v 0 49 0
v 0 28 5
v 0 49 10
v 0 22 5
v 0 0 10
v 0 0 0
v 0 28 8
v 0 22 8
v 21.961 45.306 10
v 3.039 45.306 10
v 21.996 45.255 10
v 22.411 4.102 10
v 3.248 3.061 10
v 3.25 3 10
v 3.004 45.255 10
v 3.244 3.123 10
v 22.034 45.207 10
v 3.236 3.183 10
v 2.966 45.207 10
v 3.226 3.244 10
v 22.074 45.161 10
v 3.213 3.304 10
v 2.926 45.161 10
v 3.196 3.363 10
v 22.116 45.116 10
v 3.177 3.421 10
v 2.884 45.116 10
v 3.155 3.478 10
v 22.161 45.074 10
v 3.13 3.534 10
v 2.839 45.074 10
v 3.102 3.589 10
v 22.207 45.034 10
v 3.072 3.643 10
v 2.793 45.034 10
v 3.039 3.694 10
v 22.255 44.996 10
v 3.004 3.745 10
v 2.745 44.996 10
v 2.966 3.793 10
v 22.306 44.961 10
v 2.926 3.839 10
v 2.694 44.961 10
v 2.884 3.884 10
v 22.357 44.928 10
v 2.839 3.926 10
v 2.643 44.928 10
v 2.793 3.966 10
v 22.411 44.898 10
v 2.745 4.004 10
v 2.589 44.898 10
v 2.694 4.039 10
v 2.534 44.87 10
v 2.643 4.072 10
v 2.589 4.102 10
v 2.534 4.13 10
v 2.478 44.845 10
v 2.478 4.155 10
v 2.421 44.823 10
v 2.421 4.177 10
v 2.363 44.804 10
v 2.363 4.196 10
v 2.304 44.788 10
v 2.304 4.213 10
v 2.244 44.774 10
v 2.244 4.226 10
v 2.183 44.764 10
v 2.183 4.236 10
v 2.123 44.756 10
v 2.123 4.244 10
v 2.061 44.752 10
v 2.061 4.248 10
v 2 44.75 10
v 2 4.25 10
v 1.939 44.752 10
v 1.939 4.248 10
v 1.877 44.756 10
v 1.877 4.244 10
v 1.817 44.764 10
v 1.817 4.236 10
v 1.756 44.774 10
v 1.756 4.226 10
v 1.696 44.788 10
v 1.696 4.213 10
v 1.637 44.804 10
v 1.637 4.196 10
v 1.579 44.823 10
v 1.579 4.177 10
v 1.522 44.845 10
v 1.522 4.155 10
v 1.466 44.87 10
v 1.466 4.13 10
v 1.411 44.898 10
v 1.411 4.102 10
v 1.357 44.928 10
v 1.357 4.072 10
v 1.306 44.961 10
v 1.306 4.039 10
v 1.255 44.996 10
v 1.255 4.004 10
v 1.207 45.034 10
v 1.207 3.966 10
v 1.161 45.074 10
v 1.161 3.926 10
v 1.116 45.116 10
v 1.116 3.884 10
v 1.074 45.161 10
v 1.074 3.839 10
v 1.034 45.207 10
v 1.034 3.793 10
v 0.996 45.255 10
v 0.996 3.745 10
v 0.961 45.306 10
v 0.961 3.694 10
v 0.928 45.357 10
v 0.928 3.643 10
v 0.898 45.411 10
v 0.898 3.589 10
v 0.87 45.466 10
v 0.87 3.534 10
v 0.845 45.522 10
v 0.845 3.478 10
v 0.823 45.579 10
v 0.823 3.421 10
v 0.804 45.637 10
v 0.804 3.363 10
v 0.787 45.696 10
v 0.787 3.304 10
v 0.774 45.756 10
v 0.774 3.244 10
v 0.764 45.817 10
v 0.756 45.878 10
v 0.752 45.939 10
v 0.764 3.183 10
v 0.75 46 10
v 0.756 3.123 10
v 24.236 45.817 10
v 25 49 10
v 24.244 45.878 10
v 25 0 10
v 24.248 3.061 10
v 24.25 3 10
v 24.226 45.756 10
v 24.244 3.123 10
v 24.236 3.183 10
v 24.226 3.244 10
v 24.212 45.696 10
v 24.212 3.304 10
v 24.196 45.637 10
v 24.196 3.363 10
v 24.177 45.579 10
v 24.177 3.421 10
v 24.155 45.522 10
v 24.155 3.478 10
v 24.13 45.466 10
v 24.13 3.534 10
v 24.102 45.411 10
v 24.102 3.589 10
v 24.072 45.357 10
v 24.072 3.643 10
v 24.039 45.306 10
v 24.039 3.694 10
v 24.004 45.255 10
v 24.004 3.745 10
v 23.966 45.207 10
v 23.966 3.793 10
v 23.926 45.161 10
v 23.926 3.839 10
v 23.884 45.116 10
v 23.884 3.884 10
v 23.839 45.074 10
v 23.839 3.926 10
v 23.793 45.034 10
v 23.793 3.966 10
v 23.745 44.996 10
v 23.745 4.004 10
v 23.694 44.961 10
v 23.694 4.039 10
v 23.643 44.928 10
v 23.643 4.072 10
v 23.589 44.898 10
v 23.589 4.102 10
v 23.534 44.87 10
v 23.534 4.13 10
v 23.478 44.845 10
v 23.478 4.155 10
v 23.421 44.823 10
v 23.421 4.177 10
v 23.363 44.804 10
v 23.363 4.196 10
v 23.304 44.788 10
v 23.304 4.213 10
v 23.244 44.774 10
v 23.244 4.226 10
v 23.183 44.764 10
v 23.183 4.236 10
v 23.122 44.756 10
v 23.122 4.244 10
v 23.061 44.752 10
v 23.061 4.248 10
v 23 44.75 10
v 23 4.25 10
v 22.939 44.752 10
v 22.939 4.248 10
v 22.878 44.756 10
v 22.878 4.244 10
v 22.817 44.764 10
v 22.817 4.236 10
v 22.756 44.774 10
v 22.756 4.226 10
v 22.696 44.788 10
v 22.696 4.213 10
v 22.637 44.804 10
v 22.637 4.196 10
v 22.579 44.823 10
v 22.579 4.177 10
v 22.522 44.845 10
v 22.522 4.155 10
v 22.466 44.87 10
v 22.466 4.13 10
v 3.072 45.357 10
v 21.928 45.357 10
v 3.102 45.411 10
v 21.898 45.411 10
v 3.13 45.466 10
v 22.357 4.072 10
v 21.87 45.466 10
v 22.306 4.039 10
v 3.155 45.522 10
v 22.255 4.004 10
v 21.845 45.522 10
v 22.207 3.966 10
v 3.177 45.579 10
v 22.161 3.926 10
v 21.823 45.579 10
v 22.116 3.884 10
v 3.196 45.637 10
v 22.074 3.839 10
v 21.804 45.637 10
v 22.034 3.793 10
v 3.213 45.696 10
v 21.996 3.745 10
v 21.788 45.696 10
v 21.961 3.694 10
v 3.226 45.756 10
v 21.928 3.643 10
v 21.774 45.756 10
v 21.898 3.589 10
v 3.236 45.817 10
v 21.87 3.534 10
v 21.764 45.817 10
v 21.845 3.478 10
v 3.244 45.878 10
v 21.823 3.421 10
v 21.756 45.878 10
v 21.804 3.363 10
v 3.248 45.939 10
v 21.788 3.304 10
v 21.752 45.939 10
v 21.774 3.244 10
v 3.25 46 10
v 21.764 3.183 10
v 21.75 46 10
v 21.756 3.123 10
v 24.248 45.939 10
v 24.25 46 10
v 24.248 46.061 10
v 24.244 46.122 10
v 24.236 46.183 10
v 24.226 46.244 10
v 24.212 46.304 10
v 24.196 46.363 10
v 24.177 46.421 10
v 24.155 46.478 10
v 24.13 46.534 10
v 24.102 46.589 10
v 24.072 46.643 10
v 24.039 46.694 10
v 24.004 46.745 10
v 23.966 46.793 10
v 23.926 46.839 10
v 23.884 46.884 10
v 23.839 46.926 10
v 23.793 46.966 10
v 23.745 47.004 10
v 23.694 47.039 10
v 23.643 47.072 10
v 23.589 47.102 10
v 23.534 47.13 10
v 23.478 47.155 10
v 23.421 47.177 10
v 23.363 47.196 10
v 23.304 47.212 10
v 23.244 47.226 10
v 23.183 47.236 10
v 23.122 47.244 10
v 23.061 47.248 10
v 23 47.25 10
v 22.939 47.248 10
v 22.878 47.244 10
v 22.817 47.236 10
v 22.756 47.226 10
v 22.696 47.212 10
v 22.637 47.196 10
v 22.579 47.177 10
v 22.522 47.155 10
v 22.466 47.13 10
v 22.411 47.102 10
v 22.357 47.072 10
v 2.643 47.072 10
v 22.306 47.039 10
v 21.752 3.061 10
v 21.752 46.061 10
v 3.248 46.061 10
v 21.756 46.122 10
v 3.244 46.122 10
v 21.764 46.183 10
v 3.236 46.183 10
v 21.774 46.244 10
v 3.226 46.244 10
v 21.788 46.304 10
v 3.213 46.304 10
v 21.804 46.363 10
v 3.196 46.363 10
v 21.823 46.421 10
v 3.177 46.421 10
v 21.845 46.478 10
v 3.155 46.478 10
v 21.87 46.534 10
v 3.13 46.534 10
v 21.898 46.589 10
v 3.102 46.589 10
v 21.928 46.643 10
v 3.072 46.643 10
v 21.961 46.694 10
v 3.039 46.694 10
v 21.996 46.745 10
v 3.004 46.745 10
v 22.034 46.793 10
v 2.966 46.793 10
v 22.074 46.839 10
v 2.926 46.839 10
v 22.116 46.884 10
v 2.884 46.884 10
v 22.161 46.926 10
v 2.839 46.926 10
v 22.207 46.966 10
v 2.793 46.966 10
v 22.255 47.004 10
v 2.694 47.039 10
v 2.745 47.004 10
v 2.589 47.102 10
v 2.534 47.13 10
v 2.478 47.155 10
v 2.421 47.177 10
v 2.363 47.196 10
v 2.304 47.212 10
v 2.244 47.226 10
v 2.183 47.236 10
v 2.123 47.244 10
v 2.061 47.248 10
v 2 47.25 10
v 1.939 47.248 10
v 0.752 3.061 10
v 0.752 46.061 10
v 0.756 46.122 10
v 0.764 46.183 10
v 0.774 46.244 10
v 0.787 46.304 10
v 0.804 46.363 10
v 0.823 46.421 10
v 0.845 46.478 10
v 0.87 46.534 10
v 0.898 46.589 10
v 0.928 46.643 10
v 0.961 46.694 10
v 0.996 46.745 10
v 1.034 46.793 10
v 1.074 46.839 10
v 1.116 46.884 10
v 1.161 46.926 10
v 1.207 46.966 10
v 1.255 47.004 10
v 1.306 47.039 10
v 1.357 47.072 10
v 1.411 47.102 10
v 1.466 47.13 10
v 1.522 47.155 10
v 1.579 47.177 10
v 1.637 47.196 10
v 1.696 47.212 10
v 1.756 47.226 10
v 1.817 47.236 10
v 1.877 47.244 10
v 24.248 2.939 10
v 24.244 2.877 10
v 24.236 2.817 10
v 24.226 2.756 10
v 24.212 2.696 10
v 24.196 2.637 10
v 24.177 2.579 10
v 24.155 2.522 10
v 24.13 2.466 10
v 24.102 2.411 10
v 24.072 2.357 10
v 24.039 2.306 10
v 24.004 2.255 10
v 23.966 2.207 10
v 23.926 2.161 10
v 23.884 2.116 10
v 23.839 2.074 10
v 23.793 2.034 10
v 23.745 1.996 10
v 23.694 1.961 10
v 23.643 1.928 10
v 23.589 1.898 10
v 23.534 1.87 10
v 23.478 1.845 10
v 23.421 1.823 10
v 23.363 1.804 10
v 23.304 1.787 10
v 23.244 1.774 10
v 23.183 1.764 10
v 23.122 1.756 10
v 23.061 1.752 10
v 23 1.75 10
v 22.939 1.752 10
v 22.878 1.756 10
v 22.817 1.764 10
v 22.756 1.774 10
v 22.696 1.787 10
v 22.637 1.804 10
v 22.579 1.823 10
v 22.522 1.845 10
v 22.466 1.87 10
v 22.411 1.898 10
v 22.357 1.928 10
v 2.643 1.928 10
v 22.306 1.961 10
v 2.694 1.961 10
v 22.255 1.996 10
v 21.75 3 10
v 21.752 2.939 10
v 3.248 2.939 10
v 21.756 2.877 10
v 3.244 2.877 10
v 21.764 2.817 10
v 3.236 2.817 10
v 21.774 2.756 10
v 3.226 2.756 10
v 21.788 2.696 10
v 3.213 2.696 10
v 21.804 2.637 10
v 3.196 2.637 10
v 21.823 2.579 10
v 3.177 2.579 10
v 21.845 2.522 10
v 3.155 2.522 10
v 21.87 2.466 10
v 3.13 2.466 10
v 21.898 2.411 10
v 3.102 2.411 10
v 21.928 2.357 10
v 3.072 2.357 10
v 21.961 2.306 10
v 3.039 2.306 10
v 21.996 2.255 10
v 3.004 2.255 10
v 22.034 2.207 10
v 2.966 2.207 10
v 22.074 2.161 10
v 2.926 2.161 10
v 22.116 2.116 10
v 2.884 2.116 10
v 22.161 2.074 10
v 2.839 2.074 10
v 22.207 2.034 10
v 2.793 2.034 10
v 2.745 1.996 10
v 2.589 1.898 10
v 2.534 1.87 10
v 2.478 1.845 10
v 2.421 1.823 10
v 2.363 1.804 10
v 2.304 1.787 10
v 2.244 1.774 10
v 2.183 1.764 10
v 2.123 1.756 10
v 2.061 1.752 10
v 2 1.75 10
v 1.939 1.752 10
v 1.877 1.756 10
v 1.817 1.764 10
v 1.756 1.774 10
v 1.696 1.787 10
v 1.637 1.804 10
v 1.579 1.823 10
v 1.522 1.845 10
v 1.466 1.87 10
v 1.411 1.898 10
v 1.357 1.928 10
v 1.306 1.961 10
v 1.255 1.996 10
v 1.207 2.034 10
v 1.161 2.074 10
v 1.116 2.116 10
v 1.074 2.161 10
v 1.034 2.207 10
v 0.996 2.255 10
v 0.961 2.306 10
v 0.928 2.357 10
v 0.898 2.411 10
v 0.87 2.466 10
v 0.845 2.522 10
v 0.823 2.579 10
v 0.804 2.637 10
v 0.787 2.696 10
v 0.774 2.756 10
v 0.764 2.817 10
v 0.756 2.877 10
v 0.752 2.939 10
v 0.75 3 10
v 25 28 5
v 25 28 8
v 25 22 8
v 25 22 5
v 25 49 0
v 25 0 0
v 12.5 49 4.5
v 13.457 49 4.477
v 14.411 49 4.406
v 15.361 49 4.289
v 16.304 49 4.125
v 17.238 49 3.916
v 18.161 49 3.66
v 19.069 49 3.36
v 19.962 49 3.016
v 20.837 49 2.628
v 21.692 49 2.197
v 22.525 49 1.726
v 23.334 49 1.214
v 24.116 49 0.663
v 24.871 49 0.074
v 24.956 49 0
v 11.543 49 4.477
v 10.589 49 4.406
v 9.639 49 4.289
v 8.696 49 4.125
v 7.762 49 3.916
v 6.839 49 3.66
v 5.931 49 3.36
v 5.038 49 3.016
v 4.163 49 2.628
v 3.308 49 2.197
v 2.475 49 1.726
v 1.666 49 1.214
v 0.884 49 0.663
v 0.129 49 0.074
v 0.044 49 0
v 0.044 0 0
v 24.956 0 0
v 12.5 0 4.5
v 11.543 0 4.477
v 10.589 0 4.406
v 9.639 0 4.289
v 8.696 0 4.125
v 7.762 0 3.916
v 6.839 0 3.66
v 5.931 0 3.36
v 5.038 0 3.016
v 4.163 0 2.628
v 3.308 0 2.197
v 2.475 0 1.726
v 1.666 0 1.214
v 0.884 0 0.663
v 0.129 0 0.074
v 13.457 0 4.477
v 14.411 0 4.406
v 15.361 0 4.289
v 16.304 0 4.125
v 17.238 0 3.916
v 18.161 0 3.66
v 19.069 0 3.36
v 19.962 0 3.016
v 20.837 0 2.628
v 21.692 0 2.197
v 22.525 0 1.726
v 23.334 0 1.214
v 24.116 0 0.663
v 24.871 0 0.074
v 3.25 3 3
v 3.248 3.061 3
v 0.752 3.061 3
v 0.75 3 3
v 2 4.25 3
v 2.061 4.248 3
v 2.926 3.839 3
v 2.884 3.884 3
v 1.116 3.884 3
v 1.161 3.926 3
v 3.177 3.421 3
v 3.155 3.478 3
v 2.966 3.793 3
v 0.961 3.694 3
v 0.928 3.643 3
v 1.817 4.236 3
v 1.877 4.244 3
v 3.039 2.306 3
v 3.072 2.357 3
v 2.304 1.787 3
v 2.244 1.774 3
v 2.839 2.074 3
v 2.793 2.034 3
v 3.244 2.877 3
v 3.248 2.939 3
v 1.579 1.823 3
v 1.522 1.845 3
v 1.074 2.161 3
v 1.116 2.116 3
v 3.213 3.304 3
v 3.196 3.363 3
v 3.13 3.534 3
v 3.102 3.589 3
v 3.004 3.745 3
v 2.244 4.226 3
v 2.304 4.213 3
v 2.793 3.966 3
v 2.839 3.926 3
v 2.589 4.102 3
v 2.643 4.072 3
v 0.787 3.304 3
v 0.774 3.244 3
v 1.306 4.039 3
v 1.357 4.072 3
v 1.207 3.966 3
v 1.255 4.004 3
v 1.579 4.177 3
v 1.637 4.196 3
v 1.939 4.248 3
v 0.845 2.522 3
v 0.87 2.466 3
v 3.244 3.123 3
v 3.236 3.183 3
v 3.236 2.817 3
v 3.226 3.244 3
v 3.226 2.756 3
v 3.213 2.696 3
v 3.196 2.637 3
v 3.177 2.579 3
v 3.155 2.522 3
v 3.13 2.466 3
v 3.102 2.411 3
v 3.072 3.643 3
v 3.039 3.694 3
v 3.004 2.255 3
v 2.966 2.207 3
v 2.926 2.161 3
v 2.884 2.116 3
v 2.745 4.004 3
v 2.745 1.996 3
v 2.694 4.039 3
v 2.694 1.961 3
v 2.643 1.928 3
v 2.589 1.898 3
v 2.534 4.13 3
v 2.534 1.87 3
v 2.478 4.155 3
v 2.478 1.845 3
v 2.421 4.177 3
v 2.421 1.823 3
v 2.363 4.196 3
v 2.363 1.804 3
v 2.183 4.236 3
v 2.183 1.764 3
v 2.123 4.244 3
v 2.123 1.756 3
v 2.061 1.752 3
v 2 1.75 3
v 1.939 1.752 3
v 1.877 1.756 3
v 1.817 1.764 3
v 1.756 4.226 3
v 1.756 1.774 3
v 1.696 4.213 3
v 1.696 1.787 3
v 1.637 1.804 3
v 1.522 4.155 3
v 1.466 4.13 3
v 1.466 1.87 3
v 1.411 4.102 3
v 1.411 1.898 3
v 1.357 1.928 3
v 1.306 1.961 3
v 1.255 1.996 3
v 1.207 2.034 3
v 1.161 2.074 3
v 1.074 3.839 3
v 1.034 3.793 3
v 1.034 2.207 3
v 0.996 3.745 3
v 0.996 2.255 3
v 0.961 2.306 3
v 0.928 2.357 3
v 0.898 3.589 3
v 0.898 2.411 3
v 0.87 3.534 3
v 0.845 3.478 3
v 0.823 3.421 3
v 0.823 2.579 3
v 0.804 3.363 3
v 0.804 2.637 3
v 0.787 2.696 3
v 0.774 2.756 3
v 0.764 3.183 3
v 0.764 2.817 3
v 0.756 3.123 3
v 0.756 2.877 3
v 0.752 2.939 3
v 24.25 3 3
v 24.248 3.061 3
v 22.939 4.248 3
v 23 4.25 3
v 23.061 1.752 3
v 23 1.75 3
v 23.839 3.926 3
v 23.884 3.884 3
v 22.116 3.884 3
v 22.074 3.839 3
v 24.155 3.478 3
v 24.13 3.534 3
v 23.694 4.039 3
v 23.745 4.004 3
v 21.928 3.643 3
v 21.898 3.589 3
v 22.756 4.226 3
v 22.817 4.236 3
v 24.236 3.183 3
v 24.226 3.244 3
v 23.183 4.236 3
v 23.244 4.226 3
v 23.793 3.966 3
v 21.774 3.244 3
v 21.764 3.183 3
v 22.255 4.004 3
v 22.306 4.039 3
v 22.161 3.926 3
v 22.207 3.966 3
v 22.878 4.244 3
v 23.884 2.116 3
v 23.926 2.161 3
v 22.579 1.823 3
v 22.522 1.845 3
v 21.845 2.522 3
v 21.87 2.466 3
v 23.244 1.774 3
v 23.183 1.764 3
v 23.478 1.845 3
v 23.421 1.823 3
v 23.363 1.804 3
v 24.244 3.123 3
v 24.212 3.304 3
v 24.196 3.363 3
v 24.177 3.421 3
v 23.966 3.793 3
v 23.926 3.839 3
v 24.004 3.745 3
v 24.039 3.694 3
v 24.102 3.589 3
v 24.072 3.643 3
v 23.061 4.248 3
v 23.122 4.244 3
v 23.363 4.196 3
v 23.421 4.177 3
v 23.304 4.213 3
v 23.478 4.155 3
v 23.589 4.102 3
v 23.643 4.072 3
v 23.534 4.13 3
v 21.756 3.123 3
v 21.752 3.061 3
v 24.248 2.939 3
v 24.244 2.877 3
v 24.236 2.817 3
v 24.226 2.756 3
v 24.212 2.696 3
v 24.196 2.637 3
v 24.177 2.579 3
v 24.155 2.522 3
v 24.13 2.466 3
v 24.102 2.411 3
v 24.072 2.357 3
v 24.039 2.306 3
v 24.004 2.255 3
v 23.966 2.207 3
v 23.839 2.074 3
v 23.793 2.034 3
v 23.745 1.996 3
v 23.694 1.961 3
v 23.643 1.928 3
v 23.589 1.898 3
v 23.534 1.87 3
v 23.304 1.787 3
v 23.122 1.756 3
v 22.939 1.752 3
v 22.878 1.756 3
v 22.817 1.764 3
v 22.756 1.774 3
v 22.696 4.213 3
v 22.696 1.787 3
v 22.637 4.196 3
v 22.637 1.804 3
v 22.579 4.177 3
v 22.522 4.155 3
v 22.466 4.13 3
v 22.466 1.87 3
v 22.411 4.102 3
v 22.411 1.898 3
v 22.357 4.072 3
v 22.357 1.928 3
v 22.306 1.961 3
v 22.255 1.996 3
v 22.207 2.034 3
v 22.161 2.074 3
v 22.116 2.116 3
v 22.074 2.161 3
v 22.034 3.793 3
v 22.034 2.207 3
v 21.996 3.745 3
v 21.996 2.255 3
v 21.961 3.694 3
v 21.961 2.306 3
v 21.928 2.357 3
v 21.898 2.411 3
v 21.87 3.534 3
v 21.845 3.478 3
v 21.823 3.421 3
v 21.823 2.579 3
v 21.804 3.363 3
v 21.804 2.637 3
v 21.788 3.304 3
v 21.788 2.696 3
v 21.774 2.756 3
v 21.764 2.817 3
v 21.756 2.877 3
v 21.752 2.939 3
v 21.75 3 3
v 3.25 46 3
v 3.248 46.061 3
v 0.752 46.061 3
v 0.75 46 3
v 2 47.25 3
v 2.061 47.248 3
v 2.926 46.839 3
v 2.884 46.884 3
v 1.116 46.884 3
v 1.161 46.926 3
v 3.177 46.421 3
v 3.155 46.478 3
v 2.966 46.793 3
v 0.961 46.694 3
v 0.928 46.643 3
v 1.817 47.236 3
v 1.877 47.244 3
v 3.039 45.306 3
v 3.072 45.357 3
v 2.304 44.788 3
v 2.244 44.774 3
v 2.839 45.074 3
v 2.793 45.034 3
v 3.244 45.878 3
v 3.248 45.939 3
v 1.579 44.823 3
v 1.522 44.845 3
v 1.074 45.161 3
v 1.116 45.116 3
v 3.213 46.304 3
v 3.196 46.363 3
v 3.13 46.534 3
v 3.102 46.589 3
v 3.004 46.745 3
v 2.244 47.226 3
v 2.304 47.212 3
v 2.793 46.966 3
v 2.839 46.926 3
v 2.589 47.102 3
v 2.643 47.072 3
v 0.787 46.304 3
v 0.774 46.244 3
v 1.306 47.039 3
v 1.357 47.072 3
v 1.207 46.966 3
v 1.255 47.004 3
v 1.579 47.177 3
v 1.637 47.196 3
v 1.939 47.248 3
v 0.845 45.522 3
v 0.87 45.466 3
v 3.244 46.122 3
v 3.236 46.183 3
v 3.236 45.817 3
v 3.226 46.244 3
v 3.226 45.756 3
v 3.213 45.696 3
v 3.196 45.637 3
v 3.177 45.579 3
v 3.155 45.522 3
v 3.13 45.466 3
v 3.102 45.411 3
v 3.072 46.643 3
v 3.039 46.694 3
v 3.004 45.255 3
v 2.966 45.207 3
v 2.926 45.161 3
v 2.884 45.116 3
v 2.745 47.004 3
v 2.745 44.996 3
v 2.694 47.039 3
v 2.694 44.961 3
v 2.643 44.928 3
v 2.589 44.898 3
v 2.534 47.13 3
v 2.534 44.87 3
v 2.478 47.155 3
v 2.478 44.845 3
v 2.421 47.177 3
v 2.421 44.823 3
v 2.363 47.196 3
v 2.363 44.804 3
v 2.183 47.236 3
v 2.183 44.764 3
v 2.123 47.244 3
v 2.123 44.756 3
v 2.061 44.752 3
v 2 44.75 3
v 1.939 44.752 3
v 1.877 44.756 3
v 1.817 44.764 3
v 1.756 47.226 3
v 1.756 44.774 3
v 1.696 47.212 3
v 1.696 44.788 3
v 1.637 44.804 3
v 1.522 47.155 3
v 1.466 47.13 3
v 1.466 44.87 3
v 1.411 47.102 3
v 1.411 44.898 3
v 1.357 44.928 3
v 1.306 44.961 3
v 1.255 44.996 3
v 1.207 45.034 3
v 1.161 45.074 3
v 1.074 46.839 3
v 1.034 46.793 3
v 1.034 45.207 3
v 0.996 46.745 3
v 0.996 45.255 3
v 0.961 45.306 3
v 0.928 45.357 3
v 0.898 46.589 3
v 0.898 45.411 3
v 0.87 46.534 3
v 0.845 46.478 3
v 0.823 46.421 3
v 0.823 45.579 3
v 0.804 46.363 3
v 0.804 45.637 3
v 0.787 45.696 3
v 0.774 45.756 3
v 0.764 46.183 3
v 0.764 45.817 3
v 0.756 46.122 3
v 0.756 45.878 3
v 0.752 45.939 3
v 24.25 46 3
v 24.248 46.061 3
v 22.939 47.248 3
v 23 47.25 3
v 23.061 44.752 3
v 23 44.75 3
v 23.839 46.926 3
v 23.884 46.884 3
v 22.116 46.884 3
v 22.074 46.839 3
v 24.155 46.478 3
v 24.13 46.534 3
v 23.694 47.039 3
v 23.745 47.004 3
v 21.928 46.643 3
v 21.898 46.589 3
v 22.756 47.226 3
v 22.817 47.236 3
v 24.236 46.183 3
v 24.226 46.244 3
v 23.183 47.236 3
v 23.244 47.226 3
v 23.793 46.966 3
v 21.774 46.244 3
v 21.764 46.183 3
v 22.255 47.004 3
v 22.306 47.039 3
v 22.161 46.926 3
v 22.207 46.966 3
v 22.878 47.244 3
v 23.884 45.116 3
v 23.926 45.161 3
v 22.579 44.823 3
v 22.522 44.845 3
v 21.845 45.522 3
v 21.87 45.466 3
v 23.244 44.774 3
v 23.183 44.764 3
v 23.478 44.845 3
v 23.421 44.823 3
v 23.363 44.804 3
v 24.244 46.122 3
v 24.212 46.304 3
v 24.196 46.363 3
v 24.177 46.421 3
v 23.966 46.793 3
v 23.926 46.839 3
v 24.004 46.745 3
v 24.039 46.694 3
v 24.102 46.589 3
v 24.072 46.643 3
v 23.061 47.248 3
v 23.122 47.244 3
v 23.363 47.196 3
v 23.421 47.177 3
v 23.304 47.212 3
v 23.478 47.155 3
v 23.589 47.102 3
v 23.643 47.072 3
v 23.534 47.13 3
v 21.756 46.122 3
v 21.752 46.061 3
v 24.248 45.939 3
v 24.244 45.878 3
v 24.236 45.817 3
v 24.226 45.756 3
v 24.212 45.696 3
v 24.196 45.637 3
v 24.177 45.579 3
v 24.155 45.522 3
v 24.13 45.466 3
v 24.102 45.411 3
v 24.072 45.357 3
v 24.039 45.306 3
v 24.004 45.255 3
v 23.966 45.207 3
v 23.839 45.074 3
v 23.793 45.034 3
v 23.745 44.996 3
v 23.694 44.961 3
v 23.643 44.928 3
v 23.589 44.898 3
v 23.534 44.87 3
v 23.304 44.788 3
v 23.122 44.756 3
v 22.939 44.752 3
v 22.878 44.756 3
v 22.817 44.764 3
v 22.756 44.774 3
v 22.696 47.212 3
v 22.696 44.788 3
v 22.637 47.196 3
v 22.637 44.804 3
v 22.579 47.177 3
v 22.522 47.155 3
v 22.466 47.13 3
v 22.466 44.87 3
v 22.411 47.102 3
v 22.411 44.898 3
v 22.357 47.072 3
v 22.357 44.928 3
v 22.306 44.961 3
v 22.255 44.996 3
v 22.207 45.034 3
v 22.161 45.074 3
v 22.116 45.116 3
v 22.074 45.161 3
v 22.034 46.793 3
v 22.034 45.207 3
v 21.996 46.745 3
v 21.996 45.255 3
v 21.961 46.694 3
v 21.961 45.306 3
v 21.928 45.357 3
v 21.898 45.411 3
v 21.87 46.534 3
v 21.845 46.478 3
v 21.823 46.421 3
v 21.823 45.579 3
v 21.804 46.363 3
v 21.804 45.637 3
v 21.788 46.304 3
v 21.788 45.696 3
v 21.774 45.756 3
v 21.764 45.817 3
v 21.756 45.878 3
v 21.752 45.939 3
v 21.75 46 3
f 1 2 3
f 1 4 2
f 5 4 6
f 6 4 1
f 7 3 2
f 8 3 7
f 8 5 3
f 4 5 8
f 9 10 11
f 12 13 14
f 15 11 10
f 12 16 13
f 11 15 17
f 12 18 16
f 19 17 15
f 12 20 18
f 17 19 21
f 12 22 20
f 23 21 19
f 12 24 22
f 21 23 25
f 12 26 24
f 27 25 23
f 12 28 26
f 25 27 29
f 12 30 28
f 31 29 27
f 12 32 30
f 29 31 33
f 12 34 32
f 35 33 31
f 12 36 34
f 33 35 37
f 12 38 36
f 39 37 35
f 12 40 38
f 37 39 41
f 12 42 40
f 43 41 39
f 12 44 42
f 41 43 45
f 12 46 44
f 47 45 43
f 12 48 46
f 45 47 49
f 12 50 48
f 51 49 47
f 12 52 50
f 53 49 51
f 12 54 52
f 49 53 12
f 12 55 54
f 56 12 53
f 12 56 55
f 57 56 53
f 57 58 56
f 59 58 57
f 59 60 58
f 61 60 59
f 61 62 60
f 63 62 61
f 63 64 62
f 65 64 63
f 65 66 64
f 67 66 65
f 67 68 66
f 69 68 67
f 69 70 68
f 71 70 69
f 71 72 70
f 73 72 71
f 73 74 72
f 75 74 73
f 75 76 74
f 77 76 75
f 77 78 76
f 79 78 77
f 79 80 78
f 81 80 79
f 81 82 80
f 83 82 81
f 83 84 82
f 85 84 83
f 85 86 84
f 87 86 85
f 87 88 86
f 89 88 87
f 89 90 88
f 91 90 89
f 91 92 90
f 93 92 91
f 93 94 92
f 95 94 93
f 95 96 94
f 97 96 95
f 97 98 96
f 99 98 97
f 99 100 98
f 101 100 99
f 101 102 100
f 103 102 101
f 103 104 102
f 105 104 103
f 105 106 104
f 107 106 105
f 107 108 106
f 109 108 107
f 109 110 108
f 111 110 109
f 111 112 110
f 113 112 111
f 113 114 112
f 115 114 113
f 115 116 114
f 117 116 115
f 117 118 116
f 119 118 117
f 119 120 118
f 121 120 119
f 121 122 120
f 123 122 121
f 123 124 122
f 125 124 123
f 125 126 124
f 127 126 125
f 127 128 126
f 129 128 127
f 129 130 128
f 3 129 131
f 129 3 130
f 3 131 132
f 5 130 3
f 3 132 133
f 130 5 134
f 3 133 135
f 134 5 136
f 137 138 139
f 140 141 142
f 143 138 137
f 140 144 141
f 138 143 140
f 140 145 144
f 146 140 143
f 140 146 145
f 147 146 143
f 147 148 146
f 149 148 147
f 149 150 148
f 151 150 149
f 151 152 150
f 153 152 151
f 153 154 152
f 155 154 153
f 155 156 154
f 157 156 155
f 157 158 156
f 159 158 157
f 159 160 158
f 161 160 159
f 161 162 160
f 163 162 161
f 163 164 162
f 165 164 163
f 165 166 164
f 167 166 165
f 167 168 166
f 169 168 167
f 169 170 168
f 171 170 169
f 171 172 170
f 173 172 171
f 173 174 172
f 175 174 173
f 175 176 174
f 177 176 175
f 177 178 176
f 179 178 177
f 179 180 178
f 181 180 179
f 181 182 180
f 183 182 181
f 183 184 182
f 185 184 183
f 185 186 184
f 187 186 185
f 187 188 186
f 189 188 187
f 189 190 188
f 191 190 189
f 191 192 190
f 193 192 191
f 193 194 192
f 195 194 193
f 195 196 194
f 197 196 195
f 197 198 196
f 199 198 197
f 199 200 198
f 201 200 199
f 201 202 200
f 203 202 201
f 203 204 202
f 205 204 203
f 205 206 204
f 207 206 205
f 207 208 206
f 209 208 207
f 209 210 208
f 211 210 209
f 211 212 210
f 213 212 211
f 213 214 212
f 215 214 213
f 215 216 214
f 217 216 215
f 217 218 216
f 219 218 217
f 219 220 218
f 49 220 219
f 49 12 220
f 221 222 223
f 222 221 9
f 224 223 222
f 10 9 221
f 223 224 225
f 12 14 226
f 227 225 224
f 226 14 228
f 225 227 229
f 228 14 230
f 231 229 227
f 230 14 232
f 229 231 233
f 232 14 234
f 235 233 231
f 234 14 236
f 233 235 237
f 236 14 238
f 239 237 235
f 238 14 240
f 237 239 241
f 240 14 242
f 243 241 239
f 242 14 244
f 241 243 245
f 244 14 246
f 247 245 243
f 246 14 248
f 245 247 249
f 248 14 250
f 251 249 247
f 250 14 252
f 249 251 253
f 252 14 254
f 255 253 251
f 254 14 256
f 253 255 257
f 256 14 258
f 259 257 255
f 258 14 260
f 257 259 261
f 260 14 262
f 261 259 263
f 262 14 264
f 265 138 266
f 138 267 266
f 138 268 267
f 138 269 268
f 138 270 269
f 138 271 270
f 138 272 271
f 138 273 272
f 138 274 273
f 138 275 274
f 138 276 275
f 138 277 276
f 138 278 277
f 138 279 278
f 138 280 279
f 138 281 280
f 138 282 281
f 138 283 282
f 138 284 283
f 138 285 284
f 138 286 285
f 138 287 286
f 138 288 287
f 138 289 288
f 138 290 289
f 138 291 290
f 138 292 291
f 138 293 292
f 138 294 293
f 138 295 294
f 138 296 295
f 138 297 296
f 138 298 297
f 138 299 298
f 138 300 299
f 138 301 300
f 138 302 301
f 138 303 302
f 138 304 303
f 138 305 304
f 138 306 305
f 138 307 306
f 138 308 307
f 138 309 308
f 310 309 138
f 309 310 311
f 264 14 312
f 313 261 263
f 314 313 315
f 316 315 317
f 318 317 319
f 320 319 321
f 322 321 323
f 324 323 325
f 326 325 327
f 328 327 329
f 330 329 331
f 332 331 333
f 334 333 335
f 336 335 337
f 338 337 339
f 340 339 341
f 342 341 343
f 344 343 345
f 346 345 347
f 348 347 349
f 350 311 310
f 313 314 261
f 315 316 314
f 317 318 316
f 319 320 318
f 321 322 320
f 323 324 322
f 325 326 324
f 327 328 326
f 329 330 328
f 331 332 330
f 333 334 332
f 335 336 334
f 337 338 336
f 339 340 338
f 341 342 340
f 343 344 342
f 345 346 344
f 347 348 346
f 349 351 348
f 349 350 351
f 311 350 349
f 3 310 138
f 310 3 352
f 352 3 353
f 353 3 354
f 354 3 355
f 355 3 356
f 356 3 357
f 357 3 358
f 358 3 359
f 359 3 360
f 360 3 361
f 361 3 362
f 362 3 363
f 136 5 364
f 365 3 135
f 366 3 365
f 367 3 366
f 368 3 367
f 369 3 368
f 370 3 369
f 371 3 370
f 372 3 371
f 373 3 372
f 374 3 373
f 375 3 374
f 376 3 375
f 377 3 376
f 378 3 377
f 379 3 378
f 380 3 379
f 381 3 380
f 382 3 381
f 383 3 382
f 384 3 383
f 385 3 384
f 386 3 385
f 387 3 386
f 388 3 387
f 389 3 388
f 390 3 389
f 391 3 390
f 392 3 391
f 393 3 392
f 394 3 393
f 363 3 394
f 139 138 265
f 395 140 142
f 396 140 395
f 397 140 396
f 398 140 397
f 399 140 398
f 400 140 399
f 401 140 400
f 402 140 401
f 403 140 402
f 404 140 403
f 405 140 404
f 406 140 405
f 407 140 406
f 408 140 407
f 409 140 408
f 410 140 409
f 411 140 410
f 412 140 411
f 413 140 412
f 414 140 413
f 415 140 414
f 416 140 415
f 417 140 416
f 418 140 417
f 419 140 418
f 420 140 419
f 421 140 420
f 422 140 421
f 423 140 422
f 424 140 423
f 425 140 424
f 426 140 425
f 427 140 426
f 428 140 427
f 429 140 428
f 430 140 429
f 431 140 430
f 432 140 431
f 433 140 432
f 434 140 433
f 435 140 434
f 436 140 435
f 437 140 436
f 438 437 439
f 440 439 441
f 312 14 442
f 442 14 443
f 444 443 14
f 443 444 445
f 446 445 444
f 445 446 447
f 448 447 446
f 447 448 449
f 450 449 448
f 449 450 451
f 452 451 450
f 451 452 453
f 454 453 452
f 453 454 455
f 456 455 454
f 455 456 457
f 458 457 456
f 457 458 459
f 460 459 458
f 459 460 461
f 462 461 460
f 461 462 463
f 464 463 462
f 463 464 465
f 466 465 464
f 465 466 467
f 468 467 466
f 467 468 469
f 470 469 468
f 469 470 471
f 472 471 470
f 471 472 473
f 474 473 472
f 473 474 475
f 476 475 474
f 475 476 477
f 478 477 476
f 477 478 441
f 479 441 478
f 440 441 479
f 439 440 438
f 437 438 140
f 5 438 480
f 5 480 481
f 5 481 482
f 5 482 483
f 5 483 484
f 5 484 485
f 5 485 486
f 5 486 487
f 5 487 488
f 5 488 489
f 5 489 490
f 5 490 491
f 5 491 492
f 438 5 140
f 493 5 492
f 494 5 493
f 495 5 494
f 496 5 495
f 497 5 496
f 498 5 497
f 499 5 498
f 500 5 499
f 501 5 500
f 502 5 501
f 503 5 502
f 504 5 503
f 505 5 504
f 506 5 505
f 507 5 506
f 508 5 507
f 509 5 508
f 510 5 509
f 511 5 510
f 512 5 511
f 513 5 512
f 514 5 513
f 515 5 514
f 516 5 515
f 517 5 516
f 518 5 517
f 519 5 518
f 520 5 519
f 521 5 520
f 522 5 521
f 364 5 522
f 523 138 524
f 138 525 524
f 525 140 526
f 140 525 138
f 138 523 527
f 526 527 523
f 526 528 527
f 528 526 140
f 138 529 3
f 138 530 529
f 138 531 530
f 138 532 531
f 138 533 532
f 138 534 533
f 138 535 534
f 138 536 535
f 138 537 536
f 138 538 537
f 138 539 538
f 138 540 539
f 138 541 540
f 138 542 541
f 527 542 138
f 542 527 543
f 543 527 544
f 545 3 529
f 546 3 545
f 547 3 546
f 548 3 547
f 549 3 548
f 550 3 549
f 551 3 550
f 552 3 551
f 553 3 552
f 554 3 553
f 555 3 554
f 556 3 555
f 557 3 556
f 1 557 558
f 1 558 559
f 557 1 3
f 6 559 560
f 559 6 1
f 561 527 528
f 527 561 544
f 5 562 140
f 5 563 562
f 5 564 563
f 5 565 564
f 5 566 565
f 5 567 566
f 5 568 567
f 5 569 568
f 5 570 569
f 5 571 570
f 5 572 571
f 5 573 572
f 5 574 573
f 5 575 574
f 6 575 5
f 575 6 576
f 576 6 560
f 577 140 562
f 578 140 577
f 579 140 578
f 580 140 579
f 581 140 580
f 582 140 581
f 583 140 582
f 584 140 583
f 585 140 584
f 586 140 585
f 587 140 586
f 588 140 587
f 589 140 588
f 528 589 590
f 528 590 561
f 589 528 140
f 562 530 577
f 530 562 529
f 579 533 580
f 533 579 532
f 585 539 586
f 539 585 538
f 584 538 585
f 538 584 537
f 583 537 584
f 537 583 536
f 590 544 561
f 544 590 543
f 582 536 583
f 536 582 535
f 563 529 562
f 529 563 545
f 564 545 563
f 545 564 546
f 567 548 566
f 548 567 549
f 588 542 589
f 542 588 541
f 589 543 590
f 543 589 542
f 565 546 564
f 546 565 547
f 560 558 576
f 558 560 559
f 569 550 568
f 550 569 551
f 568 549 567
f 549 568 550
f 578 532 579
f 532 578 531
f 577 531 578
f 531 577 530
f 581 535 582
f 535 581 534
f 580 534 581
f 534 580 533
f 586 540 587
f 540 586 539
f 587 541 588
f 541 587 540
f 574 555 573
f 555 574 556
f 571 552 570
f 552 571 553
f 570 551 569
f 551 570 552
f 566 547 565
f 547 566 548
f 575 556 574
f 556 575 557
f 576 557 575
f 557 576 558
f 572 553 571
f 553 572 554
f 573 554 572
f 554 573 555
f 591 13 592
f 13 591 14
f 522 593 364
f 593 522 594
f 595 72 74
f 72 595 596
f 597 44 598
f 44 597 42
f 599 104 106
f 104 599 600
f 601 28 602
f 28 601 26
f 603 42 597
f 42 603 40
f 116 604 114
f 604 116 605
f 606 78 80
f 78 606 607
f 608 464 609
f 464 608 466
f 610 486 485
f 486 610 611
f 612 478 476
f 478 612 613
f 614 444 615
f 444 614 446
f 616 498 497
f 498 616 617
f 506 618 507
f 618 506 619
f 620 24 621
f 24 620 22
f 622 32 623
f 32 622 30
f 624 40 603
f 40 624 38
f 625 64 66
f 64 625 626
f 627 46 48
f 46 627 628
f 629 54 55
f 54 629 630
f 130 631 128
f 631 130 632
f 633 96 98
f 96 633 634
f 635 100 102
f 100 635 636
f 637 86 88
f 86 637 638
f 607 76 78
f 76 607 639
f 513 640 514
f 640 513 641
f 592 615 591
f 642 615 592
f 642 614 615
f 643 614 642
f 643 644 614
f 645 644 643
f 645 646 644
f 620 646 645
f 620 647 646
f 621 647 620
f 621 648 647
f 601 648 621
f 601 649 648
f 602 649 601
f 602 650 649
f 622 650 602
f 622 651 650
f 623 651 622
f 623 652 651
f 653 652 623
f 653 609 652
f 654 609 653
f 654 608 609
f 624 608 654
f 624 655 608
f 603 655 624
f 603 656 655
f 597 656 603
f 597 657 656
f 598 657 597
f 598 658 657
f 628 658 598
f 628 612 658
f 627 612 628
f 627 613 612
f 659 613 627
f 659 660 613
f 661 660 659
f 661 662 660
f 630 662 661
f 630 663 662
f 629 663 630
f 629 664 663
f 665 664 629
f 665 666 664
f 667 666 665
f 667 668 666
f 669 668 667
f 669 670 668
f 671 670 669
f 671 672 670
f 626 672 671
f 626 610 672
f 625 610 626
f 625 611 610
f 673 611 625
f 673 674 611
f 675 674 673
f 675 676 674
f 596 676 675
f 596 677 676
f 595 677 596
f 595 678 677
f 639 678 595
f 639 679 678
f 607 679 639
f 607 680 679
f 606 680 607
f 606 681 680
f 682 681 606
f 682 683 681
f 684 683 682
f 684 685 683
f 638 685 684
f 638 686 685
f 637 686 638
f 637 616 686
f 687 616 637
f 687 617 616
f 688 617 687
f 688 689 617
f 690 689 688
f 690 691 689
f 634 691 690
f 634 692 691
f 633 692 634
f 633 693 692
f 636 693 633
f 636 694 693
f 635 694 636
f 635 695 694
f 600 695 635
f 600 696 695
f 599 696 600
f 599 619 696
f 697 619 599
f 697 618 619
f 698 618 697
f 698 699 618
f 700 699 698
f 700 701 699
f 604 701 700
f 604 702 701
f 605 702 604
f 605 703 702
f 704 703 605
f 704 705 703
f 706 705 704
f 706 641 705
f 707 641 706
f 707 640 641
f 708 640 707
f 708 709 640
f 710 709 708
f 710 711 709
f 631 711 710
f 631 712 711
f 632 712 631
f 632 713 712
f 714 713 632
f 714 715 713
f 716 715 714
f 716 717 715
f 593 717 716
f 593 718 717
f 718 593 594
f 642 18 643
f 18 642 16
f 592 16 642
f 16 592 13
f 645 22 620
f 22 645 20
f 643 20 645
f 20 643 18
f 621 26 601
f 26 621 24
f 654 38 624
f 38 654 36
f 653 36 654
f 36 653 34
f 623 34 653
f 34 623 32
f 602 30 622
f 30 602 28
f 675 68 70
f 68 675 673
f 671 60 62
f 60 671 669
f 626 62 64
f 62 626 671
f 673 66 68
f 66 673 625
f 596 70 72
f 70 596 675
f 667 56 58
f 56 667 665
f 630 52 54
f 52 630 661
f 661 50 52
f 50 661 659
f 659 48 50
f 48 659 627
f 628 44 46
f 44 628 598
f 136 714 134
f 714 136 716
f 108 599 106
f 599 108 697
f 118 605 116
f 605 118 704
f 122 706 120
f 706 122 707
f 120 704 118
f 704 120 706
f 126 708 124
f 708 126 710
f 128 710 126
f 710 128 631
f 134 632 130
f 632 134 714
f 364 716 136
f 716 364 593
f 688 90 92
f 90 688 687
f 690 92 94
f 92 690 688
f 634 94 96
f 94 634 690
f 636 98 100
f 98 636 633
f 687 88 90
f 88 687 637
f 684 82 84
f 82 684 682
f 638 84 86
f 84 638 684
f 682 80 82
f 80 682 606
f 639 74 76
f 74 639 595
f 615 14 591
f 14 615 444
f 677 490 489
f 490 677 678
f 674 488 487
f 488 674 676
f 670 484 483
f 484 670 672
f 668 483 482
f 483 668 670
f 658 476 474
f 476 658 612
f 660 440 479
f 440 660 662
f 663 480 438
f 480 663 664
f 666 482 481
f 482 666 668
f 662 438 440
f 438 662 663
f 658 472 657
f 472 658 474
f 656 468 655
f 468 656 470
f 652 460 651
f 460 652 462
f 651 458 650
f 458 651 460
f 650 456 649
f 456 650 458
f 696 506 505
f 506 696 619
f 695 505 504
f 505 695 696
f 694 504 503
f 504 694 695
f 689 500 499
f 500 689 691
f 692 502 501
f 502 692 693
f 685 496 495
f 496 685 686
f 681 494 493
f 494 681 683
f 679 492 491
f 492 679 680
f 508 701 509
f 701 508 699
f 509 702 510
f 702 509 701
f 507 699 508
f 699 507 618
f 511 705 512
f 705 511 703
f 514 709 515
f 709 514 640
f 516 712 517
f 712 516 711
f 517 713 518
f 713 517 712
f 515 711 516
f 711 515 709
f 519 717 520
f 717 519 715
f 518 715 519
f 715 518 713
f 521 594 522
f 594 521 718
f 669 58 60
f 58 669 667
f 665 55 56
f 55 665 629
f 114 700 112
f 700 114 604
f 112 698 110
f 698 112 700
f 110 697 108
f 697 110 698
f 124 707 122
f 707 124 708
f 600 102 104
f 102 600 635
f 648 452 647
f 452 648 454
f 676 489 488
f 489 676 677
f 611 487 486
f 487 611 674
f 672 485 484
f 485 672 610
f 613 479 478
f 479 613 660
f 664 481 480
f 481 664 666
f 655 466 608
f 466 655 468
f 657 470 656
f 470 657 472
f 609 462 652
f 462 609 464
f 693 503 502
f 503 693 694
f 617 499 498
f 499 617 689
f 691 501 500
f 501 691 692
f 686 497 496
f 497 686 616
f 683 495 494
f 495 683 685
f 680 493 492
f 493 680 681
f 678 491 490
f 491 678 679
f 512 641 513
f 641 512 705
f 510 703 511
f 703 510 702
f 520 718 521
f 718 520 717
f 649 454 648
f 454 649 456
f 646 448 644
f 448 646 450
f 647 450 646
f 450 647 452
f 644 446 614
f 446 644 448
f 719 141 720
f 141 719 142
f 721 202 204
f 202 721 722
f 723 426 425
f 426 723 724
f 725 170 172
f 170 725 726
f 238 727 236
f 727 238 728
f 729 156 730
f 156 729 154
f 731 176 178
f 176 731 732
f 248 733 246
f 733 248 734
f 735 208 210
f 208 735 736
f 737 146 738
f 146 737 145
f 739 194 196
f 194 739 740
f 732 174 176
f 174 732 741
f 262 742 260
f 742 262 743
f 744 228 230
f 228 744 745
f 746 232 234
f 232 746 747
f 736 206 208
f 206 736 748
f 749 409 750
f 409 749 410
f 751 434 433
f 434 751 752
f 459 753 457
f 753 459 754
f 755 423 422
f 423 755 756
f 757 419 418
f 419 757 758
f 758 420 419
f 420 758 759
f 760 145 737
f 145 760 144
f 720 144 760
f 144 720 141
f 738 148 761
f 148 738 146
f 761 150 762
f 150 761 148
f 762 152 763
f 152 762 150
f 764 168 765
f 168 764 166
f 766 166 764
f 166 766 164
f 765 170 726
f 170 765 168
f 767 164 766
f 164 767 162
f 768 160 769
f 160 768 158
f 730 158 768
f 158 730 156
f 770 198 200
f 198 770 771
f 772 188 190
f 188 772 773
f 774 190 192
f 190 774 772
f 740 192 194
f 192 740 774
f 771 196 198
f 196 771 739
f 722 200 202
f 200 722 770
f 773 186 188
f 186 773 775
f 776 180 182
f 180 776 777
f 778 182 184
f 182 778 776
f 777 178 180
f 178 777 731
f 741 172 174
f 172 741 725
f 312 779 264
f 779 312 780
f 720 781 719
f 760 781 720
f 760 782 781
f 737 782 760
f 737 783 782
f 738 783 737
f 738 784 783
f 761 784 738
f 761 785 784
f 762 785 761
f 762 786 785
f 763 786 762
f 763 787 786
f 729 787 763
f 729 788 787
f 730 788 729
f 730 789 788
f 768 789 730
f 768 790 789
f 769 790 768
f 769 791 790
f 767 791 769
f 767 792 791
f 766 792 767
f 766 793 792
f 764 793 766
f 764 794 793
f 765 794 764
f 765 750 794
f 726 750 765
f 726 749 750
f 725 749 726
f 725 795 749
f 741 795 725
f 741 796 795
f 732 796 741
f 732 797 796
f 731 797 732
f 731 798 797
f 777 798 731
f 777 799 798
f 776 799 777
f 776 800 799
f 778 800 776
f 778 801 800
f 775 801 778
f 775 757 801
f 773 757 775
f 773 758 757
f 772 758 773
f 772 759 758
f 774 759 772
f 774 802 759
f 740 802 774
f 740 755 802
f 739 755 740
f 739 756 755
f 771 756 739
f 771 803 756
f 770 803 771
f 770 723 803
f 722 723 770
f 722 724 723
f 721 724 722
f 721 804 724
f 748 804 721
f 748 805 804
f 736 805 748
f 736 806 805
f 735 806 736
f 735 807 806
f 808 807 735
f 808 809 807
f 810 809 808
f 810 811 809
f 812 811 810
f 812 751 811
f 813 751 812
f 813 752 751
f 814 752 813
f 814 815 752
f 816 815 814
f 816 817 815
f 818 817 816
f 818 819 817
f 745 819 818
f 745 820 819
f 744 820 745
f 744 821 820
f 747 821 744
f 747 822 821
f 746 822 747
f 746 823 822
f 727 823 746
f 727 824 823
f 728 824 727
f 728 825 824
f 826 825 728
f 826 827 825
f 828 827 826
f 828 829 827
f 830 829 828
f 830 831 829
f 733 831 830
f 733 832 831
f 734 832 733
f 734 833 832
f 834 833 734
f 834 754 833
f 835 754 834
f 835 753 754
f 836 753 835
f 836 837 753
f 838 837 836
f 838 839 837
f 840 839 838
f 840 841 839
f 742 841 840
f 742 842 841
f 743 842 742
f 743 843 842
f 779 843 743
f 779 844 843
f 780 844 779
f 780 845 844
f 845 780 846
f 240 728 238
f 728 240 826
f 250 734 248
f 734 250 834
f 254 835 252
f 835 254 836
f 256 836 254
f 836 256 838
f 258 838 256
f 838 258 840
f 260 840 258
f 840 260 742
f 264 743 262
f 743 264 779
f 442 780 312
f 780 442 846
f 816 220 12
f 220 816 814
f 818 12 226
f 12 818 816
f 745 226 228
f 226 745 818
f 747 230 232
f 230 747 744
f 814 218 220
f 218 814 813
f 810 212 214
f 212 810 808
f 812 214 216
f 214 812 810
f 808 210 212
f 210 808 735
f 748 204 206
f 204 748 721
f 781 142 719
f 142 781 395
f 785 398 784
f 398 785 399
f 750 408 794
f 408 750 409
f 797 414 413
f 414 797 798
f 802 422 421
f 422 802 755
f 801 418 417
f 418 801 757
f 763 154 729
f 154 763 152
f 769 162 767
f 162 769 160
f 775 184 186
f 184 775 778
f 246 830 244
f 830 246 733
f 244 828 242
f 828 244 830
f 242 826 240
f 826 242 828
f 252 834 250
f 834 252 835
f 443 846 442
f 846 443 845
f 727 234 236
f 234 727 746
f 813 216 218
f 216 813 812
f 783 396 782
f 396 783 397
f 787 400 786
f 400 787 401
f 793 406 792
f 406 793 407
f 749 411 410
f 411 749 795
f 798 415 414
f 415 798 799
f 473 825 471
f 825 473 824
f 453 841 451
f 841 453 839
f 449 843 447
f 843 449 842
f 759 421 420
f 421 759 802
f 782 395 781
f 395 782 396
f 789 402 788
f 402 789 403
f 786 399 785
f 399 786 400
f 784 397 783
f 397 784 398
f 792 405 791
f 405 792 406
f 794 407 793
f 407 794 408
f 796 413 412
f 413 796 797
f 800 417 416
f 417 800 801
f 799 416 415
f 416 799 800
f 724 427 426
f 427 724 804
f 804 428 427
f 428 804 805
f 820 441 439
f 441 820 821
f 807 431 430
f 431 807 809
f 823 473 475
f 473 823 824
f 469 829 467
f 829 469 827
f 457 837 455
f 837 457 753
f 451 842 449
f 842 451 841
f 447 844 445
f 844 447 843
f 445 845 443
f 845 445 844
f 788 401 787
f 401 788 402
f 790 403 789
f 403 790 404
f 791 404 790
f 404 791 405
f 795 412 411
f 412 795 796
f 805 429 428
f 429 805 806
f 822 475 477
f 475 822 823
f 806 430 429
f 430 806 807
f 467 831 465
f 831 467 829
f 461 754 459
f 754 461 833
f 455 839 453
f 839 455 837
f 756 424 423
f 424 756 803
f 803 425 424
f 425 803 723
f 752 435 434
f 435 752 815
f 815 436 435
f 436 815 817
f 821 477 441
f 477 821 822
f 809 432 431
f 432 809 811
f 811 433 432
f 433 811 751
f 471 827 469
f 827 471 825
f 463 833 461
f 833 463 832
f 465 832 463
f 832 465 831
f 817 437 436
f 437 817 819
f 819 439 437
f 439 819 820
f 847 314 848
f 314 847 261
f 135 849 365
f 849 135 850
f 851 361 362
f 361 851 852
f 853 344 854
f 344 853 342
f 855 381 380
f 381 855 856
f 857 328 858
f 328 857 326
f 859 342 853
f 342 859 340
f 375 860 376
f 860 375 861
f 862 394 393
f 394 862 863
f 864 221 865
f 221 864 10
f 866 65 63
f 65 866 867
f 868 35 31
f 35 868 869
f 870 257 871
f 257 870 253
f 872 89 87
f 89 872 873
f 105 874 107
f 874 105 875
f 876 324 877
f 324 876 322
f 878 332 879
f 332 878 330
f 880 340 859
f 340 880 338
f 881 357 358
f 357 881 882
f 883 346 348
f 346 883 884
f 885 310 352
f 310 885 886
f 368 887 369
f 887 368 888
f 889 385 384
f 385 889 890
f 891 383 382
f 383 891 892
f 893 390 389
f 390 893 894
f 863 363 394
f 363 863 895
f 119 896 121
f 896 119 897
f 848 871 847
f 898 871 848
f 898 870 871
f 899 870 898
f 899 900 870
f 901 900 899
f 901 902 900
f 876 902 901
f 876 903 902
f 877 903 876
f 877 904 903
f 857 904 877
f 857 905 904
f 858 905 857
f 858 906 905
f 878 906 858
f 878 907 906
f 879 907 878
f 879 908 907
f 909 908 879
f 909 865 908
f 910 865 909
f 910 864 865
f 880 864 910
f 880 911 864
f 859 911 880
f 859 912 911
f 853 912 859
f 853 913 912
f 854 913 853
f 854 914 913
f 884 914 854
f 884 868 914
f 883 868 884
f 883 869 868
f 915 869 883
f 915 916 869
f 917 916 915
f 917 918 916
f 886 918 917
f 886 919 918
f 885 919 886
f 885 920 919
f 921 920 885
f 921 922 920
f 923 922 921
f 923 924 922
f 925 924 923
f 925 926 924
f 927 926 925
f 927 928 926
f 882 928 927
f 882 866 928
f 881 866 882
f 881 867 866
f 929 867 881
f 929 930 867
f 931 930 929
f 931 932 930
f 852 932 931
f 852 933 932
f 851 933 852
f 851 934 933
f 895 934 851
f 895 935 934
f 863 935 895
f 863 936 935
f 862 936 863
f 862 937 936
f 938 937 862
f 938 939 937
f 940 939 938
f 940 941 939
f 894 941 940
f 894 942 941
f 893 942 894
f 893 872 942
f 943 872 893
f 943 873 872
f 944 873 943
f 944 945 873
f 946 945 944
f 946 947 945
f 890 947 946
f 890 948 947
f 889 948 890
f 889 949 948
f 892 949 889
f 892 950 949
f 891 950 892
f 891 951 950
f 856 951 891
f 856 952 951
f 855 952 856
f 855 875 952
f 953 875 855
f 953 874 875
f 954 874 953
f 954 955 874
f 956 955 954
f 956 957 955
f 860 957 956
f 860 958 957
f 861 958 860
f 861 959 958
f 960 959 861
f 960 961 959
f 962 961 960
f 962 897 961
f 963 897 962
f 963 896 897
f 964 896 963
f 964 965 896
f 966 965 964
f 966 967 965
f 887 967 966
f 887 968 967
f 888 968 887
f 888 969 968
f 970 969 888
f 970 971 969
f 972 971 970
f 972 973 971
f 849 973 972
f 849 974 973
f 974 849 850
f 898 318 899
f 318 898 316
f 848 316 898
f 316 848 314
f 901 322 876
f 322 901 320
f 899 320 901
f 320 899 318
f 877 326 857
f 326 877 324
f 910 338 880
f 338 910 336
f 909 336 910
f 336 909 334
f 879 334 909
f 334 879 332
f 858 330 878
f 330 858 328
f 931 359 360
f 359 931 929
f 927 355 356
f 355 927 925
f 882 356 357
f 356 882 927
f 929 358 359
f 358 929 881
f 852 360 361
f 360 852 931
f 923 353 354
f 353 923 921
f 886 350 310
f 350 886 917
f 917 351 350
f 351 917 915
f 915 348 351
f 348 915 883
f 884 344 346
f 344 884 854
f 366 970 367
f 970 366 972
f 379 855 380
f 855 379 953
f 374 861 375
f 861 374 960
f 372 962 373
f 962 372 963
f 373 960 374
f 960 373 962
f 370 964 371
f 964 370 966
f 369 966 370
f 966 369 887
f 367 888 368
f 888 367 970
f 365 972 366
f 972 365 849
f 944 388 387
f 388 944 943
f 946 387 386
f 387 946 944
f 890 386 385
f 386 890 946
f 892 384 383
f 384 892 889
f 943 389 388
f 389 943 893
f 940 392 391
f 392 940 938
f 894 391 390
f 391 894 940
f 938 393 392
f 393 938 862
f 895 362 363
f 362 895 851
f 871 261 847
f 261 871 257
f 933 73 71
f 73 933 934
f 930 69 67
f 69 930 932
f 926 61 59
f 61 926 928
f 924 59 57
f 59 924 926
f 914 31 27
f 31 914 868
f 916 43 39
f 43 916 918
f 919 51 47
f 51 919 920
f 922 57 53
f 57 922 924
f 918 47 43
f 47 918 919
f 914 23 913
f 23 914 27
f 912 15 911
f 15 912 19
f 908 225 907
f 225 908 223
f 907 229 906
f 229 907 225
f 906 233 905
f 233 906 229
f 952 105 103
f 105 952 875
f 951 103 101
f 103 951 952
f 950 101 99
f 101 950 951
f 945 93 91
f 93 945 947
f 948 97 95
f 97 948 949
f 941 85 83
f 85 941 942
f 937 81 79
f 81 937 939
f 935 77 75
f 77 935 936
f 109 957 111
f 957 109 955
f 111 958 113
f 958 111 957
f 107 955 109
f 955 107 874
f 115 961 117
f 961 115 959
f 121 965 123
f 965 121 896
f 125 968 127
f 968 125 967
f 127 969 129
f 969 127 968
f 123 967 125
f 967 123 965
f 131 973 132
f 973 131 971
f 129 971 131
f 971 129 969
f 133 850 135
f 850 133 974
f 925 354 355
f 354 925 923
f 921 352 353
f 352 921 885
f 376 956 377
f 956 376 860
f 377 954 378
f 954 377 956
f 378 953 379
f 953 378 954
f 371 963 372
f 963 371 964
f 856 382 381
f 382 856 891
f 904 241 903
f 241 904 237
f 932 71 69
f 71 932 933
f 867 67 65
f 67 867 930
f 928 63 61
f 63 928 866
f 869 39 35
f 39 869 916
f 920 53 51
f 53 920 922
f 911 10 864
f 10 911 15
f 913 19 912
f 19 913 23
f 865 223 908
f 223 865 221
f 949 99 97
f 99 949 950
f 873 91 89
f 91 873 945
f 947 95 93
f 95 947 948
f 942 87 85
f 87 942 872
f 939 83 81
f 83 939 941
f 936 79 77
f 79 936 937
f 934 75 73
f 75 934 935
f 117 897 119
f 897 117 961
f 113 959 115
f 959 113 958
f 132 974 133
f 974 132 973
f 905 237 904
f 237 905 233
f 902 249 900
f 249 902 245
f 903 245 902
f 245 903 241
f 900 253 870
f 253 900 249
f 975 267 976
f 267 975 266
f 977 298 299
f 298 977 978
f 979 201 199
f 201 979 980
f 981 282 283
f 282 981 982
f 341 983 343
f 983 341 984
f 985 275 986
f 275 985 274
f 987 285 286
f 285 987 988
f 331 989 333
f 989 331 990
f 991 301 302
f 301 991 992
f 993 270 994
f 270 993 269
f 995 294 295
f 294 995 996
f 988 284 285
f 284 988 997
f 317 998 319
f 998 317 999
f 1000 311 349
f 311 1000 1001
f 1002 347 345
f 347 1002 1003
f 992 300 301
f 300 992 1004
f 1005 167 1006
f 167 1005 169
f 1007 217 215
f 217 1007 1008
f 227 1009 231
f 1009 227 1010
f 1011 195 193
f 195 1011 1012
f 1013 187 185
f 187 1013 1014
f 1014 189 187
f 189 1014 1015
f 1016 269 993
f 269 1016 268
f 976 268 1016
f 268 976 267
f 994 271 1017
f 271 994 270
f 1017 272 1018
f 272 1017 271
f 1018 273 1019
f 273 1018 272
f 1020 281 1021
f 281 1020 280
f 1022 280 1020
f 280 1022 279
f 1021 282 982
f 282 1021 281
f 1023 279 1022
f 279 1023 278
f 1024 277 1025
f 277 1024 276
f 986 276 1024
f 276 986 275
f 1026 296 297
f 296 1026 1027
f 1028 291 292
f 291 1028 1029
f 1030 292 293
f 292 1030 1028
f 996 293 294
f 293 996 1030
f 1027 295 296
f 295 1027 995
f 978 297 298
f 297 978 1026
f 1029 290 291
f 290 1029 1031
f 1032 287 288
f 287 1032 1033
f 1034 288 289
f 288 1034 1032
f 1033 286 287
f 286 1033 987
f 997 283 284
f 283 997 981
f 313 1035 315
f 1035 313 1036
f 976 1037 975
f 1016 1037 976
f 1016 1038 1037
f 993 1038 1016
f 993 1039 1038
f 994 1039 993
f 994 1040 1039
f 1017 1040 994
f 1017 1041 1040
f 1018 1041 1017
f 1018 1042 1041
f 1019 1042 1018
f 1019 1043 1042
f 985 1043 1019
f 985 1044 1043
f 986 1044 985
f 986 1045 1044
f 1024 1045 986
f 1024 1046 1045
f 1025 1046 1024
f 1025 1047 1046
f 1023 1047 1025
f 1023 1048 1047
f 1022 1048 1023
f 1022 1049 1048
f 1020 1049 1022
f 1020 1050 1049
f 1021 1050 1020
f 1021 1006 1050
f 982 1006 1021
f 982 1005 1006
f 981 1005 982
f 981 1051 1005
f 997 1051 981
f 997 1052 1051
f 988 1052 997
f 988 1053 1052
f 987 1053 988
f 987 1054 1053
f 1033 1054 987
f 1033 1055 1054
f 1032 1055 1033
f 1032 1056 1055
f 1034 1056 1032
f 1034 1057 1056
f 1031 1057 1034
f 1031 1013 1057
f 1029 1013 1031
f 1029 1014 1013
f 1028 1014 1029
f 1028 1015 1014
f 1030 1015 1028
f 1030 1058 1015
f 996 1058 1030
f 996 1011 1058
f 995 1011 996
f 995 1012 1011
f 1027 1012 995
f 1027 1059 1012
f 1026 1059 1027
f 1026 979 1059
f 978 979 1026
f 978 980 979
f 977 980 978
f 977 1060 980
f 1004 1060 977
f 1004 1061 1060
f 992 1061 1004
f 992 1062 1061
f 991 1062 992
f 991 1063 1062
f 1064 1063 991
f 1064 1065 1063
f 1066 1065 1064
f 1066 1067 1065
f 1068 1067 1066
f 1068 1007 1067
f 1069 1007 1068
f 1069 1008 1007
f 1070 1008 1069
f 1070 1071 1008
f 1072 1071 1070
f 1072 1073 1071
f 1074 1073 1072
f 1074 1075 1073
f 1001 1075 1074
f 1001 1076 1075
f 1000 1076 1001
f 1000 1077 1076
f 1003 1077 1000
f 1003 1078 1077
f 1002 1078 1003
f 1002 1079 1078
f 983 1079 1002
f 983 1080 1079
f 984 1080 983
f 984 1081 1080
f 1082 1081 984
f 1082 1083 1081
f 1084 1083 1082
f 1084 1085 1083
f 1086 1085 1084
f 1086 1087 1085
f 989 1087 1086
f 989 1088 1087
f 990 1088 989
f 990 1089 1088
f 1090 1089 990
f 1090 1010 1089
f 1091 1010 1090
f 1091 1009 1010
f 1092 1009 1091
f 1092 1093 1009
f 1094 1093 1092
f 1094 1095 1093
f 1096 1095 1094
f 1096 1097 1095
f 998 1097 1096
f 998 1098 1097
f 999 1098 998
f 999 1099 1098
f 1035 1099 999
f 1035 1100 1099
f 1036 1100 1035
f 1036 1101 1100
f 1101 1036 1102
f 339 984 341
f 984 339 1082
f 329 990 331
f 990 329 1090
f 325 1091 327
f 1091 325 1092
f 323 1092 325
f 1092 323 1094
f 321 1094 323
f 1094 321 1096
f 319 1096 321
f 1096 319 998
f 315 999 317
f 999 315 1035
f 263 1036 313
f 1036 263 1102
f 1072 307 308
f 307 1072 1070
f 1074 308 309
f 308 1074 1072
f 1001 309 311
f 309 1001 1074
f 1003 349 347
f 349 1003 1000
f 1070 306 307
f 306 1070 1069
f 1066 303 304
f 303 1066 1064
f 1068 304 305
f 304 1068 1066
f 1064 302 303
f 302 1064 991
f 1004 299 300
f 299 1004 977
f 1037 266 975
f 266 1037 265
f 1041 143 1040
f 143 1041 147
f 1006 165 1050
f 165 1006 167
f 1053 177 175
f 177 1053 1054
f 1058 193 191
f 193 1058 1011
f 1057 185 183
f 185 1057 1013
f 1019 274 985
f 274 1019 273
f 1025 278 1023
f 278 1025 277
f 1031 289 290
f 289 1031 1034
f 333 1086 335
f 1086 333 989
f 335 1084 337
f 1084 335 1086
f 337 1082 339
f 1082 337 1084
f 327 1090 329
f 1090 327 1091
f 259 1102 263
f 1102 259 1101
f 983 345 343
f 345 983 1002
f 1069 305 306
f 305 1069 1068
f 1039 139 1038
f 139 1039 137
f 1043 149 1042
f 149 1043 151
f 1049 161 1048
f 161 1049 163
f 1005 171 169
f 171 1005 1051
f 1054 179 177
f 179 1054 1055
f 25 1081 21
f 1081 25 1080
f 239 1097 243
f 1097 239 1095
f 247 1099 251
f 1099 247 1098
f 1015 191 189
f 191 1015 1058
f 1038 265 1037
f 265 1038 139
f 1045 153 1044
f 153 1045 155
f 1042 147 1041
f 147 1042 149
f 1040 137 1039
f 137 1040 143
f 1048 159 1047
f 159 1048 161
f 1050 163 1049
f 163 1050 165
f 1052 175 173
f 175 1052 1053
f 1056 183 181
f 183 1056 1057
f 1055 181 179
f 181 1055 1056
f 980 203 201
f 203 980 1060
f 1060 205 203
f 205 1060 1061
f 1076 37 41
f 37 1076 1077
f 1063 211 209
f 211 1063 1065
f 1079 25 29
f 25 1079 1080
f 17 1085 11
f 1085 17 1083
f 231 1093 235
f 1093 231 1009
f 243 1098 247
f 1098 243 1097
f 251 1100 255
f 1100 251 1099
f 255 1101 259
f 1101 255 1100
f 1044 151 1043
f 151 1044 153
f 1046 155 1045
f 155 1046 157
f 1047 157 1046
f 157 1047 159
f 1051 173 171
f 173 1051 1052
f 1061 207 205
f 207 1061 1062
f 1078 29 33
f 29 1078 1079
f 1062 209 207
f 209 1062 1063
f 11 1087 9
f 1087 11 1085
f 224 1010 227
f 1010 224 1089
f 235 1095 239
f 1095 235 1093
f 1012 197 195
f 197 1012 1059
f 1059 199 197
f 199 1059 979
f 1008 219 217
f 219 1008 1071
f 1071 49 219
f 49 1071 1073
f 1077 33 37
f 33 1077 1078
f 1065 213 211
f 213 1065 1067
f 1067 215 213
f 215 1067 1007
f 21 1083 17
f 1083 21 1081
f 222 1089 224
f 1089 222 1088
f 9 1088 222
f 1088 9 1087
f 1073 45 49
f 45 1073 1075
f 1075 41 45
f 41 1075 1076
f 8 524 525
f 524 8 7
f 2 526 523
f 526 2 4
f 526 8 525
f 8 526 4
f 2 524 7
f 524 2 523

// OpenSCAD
$fn = 128;

module base(){

    difference(){
        cube([25,49,10]);

        translate([12.5,-2,-15])
        rotate([-90,0,0])
        cylinder(h=52,d=39);

    }

}

module holes(){

    translate([0,3,0])
    union(){
        translate([2,0,-7])
        union(){
            translate([0,0,10])
            cylinder(h=8,d=2.5);

            translate([21,0,10])
            cylinder(h=8,d=2.5);
        }

        translate([2,43,-7])
        union(){
            translate([0,0,10])
            cylinder(h=8,d=2.5);

            translate([21,0,10])
            cylinder(h=8,d=2.5);
        }
    }


}

module hellerman_cut(){
    translate([-2,22,5])
    cube([30,6,3]);
}

difference(){

    base();
    holes();
    hellerman_cut();
}

//hellerman_cut();
